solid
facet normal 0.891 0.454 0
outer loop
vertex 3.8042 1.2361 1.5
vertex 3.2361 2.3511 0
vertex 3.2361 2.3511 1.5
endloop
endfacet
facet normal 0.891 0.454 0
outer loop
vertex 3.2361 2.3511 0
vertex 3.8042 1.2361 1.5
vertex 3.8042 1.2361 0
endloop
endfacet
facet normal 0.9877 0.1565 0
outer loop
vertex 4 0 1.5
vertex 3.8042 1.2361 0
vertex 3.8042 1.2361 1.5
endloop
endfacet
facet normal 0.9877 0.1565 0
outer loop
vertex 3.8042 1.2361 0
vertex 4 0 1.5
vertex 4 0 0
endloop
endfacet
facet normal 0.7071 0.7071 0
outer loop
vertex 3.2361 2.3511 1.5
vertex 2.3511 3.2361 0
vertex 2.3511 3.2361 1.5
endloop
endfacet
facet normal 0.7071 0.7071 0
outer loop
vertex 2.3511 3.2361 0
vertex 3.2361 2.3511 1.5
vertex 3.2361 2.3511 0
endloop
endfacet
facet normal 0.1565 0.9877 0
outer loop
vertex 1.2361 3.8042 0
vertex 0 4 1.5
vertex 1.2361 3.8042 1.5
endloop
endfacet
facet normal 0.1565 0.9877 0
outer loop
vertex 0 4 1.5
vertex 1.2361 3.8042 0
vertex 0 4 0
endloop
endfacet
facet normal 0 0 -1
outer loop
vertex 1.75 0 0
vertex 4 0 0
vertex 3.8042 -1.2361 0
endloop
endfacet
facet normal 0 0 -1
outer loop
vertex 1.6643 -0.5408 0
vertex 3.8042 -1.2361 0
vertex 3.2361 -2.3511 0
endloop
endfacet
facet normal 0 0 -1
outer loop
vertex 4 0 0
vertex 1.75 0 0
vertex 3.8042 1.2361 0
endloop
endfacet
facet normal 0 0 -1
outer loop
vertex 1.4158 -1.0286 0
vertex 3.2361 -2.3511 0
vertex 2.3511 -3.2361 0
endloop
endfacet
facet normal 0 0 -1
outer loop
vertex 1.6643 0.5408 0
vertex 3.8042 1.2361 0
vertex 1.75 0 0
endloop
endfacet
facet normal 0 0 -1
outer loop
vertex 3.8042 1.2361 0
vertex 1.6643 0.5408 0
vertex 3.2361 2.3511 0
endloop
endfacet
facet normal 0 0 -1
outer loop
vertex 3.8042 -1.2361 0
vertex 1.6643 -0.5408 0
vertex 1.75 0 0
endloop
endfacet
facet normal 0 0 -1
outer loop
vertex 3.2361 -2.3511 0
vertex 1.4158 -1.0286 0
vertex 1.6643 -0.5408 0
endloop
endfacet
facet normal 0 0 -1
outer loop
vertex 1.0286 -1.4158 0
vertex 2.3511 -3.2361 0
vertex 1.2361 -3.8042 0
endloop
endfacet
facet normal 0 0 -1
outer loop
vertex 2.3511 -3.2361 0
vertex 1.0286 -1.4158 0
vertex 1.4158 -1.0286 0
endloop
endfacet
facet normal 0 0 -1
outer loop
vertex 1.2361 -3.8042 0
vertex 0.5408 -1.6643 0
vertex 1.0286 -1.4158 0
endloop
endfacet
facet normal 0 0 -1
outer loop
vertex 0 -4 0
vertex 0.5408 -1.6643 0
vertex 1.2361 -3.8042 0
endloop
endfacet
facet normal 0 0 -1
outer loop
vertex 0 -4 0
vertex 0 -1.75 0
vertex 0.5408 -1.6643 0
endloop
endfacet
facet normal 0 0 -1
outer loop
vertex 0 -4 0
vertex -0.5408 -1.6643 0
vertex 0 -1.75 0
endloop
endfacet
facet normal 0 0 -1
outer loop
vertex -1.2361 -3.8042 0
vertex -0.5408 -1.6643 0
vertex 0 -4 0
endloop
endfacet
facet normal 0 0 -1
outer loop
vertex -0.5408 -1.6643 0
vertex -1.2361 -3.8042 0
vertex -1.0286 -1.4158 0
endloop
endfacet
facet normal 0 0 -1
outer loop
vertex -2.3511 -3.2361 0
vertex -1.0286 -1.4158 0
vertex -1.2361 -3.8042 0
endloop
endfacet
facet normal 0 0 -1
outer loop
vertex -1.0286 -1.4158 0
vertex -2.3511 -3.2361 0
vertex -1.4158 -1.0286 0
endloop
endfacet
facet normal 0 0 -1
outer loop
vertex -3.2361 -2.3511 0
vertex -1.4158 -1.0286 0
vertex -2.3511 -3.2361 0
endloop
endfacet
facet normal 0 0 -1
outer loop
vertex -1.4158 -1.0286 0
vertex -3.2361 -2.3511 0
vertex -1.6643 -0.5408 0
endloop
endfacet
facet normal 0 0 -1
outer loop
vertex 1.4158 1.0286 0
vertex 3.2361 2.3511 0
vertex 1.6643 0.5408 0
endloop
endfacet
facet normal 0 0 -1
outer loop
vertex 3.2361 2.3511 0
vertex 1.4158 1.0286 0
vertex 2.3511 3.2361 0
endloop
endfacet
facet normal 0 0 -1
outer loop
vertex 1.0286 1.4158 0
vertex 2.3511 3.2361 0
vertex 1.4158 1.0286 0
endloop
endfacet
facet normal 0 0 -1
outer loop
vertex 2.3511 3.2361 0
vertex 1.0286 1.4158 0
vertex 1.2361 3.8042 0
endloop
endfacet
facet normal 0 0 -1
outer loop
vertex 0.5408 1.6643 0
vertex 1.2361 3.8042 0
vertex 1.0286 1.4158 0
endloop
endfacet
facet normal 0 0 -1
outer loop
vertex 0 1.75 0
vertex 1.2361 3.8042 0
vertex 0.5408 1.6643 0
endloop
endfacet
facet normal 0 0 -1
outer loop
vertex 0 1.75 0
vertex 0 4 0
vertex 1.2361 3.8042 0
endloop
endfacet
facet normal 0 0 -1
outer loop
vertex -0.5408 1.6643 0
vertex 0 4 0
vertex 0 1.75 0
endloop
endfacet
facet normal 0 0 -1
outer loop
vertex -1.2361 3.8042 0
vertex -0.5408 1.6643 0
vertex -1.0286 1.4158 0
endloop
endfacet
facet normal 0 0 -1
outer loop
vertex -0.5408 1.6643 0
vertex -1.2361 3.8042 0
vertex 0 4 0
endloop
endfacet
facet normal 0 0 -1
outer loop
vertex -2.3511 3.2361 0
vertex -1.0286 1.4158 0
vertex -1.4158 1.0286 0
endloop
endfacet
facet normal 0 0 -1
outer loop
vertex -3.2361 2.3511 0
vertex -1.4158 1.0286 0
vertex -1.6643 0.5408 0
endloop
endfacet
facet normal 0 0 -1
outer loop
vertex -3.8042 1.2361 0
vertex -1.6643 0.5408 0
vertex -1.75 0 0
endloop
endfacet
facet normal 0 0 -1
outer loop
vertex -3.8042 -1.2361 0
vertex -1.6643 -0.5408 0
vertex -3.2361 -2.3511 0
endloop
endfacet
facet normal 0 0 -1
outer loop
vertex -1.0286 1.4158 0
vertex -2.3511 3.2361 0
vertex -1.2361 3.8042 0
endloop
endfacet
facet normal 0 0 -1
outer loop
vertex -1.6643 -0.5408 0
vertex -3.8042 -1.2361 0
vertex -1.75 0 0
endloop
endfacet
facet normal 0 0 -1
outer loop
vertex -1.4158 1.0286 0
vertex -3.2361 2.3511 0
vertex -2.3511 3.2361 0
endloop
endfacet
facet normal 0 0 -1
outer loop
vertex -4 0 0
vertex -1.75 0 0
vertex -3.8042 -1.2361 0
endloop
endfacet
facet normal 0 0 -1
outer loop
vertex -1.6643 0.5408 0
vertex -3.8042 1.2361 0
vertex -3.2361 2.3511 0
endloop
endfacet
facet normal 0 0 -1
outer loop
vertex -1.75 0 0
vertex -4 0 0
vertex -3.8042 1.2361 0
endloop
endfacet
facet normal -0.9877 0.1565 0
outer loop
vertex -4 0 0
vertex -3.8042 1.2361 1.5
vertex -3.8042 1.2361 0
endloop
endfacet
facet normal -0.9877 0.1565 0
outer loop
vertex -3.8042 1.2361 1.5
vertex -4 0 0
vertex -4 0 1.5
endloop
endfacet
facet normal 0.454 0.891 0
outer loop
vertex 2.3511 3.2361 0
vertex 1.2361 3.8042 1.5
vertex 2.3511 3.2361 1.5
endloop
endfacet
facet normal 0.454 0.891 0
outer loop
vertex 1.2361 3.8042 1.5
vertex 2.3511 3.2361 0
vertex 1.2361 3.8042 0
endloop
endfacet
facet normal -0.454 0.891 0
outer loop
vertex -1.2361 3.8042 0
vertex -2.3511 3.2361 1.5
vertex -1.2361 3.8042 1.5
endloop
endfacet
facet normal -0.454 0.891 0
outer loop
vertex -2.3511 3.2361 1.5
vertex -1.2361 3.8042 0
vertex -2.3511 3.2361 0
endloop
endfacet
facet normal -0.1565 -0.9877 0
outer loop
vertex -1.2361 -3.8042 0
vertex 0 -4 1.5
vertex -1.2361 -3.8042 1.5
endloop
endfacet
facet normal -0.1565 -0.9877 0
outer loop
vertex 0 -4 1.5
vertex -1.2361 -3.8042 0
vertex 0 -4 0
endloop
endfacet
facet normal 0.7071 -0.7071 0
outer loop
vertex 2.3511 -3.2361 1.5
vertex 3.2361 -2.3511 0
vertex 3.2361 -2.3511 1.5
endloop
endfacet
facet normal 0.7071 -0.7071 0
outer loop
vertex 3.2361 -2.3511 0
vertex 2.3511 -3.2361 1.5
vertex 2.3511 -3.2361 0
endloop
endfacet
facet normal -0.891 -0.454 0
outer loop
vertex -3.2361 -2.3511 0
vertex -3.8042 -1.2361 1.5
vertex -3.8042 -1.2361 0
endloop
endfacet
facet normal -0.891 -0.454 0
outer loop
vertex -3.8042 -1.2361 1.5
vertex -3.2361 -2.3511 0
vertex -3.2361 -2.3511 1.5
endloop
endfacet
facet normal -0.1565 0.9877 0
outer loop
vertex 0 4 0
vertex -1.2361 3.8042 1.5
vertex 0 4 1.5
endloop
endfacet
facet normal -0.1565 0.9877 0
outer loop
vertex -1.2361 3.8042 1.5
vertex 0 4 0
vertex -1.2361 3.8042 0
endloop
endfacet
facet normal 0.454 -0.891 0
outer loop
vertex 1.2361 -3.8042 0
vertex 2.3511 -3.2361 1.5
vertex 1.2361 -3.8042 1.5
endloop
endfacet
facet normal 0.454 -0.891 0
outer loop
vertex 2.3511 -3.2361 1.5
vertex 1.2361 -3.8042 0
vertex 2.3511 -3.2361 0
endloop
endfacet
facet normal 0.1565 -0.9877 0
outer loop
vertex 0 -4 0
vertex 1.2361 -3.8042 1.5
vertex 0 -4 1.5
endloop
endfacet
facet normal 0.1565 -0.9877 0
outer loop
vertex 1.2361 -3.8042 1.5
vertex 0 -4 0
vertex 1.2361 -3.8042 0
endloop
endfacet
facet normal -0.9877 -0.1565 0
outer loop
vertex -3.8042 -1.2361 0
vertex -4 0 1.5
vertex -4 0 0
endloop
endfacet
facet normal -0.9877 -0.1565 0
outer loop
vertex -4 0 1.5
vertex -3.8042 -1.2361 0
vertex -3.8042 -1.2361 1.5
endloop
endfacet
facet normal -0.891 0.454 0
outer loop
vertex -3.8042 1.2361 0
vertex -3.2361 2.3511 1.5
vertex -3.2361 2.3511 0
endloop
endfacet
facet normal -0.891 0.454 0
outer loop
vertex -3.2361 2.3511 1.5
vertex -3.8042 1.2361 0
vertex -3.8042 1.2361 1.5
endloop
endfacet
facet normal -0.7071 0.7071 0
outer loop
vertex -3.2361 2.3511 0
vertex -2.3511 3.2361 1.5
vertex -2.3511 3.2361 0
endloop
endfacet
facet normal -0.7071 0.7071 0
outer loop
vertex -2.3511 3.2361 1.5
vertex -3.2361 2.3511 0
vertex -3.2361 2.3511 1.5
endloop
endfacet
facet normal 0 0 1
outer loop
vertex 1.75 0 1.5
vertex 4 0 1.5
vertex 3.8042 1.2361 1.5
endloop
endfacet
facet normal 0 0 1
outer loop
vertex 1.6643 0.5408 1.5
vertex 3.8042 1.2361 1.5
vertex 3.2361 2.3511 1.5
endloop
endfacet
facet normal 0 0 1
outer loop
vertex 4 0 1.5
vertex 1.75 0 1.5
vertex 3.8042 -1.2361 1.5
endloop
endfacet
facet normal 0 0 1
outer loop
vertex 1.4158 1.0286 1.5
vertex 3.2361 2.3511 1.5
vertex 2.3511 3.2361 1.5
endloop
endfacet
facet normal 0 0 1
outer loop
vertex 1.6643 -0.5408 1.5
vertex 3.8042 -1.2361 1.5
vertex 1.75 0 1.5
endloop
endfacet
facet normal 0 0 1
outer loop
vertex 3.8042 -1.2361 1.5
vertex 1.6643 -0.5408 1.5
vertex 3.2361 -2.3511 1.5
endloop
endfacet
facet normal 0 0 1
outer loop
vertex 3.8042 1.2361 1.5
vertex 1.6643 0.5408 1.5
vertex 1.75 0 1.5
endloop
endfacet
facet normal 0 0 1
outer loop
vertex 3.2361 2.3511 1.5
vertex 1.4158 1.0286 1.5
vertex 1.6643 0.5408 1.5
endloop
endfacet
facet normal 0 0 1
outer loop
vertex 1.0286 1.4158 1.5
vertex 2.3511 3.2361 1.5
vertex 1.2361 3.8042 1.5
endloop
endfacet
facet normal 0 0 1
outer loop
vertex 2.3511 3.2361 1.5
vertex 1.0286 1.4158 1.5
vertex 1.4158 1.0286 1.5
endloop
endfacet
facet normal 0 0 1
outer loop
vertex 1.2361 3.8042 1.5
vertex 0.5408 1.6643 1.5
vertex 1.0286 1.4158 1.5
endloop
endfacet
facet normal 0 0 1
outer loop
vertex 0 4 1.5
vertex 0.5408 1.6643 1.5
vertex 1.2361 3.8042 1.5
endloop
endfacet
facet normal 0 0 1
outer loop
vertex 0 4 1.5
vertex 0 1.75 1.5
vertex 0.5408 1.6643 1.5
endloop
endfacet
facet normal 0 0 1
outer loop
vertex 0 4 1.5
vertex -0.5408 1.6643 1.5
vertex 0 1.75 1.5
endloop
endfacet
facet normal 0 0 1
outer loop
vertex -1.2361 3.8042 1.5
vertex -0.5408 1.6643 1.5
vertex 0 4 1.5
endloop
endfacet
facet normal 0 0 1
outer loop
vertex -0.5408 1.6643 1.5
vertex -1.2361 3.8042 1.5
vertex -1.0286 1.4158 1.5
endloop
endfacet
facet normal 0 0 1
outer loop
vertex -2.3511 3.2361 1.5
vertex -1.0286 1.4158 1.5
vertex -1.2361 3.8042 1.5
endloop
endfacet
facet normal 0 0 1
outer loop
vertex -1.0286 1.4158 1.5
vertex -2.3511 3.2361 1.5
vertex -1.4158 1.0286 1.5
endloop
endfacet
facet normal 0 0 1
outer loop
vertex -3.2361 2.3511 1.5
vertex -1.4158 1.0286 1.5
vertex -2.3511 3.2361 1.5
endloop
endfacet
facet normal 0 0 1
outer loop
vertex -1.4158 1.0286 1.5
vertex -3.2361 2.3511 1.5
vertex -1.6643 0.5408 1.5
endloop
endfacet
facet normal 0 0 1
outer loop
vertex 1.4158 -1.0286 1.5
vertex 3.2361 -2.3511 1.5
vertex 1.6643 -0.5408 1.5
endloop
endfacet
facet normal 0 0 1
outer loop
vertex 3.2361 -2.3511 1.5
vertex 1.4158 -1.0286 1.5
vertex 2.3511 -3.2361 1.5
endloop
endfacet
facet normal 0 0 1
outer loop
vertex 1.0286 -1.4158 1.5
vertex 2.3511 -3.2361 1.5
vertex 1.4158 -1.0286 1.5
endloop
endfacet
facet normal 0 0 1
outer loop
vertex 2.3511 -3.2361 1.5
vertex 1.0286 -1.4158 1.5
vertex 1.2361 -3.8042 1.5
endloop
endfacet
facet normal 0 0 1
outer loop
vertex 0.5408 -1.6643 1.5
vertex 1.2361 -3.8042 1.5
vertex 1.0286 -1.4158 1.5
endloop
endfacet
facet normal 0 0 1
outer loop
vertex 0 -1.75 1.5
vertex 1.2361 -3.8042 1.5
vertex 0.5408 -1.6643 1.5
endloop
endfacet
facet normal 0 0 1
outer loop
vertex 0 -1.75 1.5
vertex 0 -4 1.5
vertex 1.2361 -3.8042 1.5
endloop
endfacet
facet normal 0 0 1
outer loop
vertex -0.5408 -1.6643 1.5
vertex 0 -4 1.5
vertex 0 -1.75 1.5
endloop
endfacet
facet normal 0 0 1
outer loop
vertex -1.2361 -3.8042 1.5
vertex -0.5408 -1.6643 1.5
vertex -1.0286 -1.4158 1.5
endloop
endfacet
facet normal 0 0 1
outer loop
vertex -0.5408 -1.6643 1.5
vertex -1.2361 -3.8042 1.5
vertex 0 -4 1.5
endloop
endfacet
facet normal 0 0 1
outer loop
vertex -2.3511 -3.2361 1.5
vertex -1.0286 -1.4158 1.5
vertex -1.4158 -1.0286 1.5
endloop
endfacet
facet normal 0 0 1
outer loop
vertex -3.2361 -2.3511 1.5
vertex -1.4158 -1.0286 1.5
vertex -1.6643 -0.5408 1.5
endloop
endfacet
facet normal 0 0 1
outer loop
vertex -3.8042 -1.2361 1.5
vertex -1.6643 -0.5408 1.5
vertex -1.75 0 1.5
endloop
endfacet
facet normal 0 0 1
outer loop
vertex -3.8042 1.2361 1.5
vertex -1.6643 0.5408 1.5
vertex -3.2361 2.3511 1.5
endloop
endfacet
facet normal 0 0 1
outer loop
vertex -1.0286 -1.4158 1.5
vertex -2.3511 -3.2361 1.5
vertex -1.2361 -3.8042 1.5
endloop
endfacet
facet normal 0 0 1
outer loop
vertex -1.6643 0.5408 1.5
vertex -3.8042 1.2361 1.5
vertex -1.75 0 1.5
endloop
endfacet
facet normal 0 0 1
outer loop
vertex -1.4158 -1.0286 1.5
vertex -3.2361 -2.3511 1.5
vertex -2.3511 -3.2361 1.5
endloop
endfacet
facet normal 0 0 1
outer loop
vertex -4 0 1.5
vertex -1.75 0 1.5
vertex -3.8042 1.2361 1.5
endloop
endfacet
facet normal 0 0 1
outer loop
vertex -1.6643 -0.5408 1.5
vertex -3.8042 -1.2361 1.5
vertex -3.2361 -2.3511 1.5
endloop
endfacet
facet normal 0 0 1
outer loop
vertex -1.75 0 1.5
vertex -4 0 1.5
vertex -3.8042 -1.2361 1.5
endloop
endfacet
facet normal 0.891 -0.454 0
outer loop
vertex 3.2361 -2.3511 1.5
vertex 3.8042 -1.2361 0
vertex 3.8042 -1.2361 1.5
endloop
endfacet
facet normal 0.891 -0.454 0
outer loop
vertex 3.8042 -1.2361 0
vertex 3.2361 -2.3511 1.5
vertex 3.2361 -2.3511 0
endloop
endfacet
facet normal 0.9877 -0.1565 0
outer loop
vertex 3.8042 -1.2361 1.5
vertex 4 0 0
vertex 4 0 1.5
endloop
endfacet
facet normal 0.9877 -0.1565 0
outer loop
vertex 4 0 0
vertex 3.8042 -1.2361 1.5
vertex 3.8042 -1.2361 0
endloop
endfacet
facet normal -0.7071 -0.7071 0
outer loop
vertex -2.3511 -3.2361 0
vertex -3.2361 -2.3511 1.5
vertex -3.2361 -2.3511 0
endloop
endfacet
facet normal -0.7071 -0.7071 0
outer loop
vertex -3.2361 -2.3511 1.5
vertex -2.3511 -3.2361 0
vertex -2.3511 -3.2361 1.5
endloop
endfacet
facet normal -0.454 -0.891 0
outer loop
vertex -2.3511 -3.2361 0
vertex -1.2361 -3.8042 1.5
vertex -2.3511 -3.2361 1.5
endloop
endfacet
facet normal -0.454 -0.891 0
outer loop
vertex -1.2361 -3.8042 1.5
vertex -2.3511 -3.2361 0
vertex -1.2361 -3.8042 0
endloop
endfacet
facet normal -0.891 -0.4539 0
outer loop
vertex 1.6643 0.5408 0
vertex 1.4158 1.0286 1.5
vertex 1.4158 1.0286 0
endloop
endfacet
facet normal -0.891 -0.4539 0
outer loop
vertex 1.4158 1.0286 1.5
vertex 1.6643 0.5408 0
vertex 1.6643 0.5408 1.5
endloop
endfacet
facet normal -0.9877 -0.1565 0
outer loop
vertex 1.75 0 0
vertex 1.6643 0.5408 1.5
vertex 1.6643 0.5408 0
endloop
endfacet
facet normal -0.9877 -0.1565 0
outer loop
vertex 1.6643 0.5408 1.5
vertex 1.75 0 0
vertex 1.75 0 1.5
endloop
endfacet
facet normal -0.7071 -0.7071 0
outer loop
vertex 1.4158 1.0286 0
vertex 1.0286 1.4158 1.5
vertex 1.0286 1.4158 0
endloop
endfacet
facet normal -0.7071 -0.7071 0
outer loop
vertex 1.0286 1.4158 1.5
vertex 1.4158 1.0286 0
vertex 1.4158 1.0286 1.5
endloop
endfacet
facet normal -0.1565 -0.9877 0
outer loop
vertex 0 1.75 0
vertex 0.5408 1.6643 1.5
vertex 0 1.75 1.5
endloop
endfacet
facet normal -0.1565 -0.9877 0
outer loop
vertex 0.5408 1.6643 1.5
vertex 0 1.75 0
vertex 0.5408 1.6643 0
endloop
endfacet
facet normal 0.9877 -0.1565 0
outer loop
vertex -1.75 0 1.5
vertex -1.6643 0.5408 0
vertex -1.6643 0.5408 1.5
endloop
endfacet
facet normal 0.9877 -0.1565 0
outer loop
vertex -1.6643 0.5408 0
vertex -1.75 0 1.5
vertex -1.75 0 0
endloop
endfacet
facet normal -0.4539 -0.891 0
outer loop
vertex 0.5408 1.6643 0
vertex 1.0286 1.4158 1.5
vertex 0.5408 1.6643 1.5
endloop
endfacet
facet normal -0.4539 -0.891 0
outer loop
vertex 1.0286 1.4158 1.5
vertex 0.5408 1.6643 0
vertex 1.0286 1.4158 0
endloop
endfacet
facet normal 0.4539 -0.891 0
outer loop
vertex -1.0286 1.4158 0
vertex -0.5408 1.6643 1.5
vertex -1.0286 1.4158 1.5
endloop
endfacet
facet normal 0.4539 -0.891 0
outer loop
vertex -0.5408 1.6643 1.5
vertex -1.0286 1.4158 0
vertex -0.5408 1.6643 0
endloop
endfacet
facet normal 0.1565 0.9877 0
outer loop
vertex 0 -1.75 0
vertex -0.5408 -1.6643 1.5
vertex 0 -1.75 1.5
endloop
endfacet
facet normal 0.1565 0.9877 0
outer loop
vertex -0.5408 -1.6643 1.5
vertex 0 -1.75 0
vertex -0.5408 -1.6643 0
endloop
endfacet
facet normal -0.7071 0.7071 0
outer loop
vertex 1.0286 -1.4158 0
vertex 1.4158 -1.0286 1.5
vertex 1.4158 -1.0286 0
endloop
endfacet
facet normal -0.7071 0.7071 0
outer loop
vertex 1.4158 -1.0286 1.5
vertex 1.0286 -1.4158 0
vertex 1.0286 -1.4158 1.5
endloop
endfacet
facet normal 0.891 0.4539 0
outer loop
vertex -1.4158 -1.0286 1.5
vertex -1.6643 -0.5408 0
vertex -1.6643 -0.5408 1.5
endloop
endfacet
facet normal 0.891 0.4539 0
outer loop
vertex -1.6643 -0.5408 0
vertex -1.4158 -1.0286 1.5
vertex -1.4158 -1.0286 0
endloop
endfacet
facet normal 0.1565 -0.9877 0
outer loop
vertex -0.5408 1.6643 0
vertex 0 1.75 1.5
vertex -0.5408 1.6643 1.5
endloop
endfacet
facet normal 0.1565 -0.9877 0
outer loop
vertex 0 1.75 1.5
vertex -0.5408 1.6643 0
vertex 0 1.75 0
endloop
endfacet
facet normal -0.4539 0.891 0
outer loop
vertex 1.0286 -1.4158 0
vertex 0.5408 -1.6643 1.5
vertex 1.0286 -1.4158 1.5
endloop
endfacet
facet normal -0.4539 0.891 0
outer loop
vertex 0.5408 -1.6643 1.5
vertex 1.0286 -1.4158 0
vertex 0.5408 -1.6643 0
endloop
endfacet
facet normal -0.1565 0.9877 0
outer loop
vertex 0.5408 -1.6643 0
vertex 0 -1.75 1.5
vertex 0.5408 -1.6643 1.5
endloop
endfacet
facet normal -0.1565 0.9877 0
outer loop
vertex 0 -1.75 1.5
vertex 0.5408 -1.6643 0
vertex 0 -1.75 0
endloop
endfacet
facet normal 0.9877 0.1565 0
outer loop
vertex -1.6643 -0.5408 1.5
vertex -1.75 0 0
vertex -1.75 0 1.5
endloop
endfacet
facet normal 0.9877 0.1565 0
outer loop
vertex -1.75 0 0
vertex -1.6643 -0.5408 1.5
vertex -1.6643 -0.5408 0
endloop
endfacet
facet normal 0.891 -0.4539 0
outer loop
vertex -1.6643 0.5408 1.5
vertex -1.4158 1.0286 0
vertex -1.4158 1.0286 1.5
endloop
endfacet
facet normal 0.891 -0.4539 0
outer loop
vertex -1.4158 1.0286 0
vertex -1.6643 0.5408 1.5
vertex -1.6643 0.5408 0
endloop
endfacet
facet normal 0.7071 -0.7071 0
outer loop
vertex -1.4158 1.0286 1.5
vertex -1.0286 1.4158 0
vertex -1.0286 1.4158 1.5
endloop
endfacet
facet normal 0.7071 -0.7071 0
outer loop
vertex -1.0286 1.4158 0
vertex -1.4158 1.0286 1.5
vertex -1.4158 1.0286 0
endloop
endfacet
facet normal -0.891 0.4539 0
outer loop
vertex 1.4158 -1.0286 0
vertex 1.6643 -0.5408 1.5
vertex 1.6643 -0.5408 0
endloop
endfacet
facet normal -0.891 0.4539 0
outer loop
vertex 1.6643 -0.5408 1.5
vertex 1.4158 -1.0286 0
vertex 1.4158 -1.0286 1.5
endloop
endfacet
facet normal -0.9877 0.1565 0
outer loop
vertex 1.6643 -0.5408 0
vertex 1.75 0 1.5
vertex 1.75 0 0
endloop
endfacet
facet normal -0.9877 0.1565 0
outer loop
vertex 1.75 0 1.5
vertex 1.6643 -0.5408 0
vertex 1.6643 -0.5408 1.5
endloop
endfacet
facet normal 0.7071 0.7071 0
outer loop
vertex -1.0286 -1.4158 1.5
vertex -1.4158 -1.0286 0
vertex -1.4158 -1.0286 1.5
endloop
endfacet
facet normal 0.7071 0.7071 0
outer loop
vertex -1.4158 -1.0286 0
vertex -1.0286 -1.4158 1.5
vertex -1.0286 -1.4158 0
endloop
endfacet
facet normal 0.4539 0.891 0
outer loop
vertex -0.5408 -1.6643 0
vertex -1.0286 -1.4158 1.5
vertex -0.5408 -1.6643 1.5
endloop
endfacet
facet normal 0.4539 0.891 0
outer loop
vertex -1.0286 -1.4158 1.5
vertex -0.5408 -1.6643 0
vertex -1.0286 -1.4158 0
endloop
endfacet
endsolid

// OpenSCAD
$fn=20;

module m3_peg(peg_h){
    difference(){
        cylinder(d=8, h=peg_h);
        cylinder(d=3.5, h=peg_h);
    }
}

m3_peg(1.5);
